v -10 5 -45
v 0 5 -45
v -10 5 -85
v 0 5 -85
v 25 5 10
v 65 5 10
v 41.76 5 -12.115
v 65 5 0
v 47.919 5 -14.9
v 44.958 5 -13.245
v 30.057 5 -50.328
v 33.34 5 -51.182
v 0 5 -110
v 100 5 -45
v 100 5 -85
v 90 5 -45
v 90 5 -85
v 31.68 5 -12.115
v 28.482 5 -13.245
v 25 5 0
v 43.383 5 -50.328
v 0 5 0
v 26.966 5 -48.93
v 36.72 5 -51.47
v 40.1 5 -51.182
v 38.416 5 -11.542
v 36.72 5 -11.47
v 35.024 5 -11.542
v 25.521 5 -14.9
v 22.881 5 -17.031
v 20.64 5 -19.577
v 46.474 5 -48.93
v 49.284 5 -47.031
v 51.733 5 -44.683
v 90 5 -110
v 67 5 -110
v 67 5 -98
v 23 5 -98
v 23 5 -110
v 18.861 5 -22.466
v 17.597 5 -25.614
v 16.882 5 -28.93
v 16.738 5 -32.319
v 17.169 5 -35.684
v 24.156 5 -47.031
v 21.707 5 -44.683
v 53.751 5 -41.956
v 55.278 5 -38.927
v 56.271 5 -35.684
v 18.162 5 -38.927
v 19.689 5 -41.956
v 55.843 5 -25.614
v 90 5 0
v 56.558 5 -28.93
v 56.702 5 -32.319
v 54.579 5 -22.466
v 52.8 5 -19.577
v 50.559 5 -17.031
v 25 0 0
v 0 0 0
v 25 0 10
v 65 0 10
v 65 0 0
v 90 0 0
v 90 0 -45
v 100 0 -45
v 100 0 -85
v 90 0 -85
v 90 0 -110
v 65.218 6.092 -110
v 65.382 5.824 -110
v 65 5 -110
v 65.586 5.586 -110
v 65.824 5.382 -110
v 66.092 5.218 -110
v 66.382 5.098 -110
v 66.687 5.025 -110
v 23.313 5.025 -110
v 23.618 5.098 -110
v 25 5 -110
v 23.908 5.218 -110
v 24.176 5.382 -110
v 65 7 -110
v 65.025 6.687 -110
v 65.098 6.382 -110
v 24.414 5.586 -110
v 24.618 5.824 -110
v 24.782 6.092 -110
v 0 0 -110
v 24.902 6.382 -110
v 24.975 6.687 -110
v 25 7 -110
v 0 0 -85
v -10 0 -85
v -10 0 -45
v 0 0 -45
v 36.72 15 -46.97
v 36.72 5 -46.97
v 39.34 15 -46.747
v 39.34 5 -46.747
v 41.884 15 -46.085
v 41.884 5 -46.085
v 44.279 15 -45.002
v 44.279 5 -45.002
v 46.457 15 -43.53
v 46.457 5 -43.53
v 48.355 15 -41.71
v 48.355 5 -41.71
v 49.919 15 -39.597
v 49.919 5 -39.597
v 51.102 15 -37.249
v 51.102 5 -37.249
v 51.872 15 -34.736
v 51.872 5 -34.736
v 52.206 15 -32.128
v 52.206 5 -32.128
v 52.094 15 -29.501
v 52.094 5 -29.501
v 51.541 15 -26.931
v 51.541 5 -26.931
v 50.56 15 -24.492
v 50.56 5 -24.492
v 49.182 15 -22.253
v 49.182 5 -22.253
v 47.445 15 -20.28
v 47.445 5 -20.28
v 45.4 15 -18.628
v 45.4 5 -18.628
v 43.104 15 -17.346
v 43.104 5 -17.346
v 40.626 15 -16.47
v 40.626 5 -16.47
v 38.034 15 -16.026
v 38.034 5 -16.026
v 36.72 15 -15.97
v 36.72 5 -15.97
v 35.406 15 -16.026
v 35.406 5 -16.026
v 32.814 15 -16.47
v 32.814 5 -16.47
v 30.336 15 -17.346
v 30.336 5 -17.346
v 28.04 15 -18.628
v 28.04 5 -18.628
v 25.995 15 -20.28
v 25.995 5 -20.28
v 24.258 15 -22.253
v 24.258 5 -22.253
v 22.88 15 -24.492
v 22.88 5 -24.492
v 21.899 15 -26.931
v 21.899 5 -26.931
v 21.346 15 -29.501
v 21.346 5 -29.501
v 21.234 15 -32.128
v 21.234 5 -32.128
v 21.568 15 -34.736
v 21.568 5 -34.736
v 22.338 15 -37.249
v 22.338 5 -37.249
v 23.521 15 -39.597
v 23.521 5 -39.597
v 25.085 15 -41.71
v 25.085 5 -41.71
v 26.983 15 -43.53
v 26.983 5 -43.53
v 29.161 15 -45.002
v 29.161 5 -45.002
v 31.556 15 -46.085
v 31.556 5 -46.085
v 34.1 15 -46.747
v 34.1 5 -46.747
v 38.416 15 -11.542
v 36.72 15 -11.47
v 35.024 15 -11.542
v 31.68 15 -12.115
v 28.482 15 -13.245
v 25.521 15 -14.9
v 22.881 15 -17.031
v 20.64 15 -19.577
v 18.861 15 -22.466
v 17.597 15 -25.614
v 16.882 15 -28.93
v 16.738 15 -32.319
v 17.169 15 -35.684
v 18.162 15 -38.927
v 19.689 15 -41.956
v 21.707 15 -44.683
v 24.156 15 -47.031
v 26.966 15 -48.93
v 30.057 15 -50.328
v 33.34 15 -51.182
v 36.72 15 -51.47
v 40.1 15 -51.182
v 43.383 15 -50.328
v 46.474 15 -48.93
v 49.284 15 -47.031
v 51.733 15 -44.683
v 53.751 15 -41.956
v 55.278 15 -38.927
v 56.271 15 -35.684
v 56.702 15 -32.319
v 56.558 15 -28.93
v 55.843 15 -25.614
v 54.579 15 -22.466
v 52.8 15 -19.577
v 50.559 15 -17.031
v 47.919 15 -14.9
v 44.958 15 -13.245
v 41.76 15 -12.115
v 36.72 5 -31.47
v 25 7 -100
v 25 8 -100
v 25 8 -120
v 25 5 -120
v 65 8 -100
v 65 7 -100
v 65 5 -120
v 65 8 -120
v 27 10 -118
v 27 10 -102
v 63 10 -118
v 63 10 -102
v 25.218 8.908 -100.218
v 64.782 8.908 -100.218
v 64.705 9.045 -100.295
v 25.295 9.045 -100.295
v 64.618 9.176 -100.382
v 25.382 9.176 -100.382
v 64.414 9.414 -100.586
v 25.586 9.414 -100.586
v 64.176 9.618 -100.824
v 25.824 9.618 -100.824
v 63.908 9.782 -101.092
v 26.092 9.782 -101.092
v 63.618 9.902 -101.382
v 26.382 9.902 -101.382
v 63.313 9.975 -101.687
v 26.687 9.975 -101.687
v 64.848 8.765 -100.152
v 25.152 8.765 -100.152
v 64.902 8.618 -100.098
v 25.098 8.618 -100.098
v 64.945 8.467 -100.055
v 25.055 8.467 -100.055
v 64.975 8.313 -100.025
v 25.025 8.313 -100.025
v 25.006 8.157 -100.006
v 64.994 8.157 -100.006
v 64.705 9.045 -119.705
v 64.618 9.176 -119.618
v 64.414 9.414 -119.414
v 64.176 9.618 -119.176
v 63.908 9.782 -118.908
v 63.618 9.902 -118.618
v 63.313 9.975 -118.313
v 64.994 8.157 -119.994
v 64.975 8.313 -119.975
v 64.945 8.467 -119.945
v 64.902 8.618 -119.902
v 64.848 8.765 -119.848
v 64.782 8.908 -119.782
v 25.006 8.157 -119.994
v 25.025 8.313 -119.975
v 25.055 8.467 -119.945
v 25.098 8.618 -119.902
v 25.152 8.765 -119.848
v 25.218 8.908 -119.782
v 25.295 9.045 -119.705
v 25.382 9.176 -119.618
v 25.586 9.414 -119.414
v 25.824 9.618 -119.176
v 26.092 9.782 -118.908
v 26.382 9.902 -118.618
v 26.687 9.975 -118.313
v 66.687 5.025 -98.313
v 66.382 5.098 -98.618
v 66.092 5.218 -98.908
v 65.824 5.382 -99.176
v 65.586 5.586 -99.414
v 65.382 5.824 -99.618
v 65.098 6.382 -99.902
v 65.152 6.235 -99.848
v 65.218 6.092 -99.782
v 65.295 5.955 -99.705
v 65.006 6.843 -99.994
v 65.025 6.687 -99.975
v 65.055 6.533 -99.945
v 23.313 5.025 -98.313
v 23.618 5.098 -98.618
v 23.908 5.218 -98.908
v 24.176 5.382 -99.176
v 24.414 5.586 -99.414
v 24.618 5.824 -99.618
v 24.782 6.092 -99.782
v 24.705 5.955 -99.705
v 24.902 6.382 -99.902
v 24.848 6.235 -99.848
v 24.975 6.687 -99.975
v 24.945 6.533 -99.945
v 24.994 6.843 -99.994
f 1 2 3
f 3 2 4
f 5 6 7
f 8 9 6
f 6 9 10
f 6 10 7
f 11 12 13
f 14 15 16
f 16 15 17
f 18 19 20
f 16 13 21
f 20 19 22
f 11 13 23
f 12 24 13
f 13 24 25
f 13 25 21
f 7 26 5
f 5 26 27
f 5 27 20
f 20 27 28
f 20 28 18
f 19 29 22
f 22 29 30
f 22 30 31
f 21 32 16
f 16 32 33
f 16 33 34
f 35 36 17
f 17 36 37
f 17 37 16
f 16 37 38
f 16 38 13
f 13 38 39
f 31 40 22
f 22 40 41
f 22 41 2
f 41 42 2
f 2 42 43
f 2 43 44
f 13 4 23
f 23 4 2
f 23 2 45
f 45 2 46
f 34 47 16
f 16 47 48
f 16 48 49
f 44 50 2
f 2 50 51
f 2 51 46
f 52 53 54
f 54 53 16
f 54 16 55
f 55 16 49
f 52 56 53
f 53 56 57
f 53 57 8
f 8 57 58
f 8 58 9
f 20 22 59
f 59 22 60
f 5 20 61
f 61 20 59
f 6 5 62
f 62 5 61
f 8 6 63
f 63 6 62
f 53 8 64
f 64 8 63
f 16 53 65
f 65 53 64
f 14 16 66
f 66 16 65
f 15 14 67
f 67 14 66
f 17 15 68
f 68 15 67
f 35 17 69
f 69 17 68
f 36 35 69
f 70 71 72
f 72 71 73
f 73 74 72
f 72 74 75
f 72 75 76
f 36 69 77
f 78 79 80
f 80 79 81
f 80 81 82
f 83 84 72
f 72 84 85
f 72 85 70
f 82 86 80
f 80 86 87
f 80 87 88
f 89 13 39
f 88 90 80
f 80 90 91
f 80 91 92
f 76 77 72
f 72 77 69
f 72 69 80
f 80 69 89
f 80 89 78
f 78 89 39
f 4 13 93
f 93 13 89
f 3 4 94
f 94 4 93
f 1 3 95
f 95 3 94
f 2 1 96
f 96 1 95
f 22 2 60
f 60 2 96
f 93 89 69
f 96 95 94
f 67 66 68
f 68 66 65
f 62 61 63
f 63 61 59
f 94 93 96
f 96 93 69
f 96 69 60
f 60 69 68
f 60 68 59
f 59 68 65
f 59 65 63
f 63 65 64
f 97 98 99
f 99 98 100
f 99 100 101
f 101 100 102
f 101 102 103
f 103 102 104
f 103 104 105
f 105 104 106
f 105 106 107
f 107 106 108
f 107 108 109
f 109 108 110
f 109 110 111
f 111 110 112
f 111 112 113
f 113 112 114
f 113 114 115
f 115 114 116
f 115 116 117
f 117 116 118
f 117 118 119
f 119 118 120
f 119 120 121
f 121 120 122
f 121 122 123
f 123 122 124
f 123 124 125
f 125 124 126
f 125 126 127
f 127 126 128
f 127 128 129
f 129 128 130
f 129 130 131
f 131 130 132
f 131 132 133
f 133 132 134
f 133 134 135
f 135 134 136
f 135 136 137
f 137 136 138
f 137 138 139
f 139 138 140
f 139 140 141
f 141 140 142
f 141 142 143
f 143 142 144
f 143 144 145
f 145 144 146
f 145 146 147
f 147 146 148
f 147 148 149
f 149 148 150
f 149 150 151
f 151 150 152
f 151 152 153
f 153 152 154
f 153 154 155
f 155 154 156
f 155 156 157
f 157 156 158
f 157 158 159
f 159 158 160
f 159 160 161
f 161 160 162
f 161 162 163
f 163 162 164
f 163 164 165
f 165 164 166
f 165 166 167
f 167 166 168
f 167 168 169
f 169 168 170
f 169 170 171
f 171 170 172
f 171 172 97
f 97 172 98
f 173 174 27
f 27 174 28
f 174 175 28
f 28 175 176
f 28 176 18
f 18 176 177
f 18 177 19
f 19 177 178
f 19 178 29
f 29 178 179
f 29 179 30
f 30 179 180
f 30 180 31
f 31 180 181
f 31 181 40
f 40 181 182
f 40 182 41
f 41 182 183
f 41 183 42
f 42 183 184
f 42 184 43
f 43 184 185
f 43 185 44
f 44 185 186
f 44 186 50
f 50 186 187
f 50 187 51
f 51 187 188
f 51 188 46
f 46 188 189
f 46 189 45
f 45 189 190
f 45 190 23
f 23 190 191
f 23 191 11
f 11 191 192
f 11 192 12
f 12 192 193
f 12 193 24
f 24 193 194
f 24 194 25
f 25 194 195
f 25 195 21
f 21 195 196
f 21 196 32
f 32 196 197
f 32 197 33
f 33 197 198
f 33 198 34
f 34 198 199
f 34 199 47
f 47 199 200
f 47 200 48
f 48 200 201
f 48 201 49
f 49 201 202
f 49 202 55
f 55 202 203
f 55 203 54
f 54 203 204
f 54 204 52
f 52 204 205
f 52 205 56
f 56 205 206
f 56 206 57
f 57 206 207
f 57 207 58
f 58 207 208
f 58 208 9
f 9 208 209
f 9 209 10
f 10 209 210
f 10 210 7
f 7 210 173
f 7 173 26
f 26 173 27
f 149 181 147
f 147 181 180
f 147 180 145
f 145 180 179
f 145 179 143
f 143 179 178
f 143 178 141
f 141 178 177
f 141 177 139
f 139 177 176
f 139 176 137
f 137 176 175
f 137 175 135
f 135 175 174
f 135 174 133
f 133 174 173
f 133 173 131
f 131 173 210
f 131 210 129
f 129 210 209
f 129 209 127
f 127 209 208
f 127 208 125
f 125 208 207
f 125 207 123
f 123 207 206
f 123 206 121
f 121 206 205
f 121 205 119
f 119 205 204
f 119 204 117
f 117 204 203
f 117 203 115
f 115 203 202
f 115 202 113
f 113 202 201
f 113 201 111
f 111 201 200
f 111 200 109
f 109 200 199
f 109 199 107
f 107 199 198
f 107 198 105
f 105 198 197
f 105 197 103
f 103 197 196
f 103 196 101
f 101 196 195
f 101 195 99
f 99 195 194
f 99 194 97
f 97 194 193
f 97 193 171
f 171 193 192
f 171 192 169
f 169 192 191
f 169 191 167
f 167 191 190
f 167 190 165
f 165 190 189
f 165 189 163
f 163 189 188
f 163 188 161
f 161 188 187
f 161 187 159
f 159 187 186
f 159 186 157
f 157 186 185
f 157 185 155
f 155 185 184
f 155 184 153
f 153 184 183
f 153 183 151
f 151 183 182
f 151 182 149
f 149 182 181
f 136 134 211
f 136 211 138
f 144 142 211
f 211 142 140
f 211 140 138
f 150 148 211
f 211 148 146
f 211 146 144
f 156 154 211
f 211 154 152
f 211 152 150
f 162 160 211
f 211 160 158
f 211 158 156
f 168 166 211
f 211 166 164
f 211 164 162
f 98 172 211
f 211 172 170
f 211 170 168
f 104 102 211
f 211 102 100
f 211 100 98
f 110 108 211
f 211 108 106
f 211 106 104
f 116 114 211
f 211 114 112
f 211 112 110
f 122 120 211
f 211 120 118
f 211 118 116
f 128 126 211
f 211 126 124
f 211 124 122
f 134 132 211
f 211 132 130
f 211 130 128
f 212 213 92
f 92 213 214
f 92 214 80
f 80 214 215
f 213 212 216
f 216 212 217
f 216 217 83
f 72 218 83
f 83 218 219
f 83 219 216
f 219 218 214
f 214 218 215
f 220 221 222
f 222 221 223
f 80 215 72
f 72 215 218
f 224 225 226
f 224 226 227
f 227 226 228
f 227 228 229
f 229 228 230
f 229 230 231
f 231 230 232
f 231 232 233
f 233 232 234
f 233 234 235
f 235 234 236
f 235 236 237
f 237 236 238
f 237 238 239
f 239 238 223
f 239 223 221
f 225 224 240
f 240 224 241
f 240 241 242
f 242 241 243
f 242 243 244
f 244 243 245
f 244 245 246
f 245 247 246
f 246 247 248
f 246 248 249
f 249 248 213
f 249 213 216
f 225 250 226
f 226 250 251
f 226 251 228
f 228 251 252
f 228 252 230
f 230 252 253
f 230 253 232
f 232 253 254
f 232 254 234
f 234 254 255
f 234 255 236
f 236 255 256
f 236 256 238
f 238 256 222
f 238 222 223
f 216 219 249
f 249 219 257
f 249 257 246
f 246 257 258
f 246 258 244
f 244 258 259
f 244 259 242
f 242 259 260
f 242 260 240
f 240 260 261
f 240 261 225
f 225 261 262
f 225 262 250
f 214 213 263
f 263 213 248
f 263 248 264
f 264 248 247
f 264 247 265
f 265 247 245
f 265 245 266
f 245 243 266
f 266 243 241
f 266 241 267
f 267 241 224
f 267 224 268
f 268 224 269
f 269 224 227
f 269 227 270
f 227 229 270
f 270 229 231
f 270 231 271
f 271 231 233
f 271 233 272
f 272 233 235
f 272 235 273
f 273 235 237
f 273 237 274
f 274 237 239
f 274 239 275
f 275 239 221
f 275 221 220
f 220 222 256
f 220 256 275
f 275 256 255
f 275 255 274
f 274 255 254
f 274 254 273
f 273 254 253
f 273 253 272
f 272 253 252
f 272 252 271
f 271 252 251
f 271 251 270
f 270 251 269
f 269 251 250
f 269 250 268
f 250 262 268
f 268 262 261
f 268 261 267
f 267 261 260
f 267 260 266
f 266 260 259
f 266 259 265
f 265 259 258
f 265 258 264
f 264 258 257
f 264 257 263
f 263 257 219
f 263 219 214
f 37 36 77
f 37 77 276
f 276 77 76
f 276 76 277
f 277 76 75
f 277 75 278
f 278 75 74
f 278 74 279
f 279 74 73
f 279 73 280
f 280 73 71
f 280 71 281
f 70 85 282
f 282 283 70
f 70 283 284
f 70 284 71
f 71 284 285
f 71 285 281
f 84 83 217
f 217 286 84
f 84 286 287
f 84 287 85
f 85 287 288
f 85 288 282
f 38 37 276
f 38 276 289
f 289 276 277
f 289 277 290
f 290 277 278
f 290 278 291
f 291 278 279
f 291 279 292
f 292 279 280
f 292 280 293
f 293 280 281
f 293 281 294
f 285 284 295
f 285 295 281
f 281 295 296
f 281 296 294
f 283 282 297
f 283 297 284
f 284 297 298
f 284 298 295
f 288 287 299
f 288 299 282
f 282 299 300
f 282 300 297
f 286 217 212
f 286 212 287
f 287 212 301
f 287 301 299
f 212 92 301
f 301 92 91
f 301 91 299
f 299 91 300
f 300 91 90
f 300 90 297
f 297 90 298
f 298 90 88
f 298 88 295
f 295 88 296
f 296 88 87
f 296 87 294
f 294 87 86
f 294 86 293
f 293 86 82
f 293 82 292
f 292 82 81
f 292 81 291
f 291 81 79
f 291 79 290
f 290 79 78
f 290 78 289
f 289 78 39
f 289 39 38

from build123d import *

# Parameters (mm, degrees)
SKETCH1_W           = 90
SKETCH1_H           = 110
SKETCH1_W_2         = 10
SKETCH1_H_2         = 40
SKETCH1_W_3         = 40
SKETCH1_H_3         = 10
BOSS_EXTRUDE1_DEPTH = 5
SKETCH4_R           = 20
SKETCH4_R_2         = 15.5
BOSS_EXTRUDE2_DEPTH = 10
SKETCH5_W           = 40
SKETCH5_H           = 20
BOSS_EXTRUDE3_DEPTH = 5
FILLET1_R           = 2


with BuildPart() as part:
    # Sketch1 → Boss-Extrude1 (new body)
    with BuildSketch(Plane(origin=(0, 0, 0), x_dir=(1, 0, 0), z_dir=(0, 1, 0))):
        with Locations((45, 55)):
            Rectangle(SKETCH1_W, SKETCH1_H)
        with Locations((-5, 65)):
            Rectangle(SKETCH1_W_2, SKETCH1_H_2)
        with Locations((95, 65)):
            Rectangle(SKETCH1_W_2, SKETCH1_H_2)
        with Locations((45, -5)):
            Rectangle(SKETCH1_W_3, SKETCH1_H_3)
    extrude(amount=BOSS_EXTRUDE1_DEPTH)

    # Sketch4 → Boss-Extrude2 (add)
    with BuildSketch(Plane(origin=(0, 5, 0), x_dir=(1, 0, 0), z_dir=(0, 1, 0))):
        with Locations(Location((36.72, 31.47, 0), (0, 0, 270))):
            Circle(SKETCH4_R)
        with Locations(Location((36.72, 31.47, 0), (0, 0, 270))):
            Circle(SKETCH4_R_2, mode=Mode.SUBTRACT)
    extrude(amount=BOSS_EXTRUDE2_DEPTH)

    # Sketch5 → Boss-Extrude3 (add)
    with BuildSketch(Plane(origin=(0, 5, 0), x_dir=(1, 0, 0), z_dir=(0, 1, 0))):
        with Locations((45, 110)):
            Rectangle(SKETCH5_W, SKETCH5_H)
    extrude(amount=BOSS_EXTRUDE3_DEPTH)

    # Fillet1
    fillet1_edges = [part.edges().sort_by_distance(p)[0] for p in [
        (25, 5, -105),
        (45, 5, -100),
        (65, 5, -105),
        (25, 10, -110),
        (45, 10, -100),
        (65, 10, -110),
        (45, 10, -120),
    ]]
    fillet(fillet1_edges, radius=FILLET1_R)


solid = part.part
